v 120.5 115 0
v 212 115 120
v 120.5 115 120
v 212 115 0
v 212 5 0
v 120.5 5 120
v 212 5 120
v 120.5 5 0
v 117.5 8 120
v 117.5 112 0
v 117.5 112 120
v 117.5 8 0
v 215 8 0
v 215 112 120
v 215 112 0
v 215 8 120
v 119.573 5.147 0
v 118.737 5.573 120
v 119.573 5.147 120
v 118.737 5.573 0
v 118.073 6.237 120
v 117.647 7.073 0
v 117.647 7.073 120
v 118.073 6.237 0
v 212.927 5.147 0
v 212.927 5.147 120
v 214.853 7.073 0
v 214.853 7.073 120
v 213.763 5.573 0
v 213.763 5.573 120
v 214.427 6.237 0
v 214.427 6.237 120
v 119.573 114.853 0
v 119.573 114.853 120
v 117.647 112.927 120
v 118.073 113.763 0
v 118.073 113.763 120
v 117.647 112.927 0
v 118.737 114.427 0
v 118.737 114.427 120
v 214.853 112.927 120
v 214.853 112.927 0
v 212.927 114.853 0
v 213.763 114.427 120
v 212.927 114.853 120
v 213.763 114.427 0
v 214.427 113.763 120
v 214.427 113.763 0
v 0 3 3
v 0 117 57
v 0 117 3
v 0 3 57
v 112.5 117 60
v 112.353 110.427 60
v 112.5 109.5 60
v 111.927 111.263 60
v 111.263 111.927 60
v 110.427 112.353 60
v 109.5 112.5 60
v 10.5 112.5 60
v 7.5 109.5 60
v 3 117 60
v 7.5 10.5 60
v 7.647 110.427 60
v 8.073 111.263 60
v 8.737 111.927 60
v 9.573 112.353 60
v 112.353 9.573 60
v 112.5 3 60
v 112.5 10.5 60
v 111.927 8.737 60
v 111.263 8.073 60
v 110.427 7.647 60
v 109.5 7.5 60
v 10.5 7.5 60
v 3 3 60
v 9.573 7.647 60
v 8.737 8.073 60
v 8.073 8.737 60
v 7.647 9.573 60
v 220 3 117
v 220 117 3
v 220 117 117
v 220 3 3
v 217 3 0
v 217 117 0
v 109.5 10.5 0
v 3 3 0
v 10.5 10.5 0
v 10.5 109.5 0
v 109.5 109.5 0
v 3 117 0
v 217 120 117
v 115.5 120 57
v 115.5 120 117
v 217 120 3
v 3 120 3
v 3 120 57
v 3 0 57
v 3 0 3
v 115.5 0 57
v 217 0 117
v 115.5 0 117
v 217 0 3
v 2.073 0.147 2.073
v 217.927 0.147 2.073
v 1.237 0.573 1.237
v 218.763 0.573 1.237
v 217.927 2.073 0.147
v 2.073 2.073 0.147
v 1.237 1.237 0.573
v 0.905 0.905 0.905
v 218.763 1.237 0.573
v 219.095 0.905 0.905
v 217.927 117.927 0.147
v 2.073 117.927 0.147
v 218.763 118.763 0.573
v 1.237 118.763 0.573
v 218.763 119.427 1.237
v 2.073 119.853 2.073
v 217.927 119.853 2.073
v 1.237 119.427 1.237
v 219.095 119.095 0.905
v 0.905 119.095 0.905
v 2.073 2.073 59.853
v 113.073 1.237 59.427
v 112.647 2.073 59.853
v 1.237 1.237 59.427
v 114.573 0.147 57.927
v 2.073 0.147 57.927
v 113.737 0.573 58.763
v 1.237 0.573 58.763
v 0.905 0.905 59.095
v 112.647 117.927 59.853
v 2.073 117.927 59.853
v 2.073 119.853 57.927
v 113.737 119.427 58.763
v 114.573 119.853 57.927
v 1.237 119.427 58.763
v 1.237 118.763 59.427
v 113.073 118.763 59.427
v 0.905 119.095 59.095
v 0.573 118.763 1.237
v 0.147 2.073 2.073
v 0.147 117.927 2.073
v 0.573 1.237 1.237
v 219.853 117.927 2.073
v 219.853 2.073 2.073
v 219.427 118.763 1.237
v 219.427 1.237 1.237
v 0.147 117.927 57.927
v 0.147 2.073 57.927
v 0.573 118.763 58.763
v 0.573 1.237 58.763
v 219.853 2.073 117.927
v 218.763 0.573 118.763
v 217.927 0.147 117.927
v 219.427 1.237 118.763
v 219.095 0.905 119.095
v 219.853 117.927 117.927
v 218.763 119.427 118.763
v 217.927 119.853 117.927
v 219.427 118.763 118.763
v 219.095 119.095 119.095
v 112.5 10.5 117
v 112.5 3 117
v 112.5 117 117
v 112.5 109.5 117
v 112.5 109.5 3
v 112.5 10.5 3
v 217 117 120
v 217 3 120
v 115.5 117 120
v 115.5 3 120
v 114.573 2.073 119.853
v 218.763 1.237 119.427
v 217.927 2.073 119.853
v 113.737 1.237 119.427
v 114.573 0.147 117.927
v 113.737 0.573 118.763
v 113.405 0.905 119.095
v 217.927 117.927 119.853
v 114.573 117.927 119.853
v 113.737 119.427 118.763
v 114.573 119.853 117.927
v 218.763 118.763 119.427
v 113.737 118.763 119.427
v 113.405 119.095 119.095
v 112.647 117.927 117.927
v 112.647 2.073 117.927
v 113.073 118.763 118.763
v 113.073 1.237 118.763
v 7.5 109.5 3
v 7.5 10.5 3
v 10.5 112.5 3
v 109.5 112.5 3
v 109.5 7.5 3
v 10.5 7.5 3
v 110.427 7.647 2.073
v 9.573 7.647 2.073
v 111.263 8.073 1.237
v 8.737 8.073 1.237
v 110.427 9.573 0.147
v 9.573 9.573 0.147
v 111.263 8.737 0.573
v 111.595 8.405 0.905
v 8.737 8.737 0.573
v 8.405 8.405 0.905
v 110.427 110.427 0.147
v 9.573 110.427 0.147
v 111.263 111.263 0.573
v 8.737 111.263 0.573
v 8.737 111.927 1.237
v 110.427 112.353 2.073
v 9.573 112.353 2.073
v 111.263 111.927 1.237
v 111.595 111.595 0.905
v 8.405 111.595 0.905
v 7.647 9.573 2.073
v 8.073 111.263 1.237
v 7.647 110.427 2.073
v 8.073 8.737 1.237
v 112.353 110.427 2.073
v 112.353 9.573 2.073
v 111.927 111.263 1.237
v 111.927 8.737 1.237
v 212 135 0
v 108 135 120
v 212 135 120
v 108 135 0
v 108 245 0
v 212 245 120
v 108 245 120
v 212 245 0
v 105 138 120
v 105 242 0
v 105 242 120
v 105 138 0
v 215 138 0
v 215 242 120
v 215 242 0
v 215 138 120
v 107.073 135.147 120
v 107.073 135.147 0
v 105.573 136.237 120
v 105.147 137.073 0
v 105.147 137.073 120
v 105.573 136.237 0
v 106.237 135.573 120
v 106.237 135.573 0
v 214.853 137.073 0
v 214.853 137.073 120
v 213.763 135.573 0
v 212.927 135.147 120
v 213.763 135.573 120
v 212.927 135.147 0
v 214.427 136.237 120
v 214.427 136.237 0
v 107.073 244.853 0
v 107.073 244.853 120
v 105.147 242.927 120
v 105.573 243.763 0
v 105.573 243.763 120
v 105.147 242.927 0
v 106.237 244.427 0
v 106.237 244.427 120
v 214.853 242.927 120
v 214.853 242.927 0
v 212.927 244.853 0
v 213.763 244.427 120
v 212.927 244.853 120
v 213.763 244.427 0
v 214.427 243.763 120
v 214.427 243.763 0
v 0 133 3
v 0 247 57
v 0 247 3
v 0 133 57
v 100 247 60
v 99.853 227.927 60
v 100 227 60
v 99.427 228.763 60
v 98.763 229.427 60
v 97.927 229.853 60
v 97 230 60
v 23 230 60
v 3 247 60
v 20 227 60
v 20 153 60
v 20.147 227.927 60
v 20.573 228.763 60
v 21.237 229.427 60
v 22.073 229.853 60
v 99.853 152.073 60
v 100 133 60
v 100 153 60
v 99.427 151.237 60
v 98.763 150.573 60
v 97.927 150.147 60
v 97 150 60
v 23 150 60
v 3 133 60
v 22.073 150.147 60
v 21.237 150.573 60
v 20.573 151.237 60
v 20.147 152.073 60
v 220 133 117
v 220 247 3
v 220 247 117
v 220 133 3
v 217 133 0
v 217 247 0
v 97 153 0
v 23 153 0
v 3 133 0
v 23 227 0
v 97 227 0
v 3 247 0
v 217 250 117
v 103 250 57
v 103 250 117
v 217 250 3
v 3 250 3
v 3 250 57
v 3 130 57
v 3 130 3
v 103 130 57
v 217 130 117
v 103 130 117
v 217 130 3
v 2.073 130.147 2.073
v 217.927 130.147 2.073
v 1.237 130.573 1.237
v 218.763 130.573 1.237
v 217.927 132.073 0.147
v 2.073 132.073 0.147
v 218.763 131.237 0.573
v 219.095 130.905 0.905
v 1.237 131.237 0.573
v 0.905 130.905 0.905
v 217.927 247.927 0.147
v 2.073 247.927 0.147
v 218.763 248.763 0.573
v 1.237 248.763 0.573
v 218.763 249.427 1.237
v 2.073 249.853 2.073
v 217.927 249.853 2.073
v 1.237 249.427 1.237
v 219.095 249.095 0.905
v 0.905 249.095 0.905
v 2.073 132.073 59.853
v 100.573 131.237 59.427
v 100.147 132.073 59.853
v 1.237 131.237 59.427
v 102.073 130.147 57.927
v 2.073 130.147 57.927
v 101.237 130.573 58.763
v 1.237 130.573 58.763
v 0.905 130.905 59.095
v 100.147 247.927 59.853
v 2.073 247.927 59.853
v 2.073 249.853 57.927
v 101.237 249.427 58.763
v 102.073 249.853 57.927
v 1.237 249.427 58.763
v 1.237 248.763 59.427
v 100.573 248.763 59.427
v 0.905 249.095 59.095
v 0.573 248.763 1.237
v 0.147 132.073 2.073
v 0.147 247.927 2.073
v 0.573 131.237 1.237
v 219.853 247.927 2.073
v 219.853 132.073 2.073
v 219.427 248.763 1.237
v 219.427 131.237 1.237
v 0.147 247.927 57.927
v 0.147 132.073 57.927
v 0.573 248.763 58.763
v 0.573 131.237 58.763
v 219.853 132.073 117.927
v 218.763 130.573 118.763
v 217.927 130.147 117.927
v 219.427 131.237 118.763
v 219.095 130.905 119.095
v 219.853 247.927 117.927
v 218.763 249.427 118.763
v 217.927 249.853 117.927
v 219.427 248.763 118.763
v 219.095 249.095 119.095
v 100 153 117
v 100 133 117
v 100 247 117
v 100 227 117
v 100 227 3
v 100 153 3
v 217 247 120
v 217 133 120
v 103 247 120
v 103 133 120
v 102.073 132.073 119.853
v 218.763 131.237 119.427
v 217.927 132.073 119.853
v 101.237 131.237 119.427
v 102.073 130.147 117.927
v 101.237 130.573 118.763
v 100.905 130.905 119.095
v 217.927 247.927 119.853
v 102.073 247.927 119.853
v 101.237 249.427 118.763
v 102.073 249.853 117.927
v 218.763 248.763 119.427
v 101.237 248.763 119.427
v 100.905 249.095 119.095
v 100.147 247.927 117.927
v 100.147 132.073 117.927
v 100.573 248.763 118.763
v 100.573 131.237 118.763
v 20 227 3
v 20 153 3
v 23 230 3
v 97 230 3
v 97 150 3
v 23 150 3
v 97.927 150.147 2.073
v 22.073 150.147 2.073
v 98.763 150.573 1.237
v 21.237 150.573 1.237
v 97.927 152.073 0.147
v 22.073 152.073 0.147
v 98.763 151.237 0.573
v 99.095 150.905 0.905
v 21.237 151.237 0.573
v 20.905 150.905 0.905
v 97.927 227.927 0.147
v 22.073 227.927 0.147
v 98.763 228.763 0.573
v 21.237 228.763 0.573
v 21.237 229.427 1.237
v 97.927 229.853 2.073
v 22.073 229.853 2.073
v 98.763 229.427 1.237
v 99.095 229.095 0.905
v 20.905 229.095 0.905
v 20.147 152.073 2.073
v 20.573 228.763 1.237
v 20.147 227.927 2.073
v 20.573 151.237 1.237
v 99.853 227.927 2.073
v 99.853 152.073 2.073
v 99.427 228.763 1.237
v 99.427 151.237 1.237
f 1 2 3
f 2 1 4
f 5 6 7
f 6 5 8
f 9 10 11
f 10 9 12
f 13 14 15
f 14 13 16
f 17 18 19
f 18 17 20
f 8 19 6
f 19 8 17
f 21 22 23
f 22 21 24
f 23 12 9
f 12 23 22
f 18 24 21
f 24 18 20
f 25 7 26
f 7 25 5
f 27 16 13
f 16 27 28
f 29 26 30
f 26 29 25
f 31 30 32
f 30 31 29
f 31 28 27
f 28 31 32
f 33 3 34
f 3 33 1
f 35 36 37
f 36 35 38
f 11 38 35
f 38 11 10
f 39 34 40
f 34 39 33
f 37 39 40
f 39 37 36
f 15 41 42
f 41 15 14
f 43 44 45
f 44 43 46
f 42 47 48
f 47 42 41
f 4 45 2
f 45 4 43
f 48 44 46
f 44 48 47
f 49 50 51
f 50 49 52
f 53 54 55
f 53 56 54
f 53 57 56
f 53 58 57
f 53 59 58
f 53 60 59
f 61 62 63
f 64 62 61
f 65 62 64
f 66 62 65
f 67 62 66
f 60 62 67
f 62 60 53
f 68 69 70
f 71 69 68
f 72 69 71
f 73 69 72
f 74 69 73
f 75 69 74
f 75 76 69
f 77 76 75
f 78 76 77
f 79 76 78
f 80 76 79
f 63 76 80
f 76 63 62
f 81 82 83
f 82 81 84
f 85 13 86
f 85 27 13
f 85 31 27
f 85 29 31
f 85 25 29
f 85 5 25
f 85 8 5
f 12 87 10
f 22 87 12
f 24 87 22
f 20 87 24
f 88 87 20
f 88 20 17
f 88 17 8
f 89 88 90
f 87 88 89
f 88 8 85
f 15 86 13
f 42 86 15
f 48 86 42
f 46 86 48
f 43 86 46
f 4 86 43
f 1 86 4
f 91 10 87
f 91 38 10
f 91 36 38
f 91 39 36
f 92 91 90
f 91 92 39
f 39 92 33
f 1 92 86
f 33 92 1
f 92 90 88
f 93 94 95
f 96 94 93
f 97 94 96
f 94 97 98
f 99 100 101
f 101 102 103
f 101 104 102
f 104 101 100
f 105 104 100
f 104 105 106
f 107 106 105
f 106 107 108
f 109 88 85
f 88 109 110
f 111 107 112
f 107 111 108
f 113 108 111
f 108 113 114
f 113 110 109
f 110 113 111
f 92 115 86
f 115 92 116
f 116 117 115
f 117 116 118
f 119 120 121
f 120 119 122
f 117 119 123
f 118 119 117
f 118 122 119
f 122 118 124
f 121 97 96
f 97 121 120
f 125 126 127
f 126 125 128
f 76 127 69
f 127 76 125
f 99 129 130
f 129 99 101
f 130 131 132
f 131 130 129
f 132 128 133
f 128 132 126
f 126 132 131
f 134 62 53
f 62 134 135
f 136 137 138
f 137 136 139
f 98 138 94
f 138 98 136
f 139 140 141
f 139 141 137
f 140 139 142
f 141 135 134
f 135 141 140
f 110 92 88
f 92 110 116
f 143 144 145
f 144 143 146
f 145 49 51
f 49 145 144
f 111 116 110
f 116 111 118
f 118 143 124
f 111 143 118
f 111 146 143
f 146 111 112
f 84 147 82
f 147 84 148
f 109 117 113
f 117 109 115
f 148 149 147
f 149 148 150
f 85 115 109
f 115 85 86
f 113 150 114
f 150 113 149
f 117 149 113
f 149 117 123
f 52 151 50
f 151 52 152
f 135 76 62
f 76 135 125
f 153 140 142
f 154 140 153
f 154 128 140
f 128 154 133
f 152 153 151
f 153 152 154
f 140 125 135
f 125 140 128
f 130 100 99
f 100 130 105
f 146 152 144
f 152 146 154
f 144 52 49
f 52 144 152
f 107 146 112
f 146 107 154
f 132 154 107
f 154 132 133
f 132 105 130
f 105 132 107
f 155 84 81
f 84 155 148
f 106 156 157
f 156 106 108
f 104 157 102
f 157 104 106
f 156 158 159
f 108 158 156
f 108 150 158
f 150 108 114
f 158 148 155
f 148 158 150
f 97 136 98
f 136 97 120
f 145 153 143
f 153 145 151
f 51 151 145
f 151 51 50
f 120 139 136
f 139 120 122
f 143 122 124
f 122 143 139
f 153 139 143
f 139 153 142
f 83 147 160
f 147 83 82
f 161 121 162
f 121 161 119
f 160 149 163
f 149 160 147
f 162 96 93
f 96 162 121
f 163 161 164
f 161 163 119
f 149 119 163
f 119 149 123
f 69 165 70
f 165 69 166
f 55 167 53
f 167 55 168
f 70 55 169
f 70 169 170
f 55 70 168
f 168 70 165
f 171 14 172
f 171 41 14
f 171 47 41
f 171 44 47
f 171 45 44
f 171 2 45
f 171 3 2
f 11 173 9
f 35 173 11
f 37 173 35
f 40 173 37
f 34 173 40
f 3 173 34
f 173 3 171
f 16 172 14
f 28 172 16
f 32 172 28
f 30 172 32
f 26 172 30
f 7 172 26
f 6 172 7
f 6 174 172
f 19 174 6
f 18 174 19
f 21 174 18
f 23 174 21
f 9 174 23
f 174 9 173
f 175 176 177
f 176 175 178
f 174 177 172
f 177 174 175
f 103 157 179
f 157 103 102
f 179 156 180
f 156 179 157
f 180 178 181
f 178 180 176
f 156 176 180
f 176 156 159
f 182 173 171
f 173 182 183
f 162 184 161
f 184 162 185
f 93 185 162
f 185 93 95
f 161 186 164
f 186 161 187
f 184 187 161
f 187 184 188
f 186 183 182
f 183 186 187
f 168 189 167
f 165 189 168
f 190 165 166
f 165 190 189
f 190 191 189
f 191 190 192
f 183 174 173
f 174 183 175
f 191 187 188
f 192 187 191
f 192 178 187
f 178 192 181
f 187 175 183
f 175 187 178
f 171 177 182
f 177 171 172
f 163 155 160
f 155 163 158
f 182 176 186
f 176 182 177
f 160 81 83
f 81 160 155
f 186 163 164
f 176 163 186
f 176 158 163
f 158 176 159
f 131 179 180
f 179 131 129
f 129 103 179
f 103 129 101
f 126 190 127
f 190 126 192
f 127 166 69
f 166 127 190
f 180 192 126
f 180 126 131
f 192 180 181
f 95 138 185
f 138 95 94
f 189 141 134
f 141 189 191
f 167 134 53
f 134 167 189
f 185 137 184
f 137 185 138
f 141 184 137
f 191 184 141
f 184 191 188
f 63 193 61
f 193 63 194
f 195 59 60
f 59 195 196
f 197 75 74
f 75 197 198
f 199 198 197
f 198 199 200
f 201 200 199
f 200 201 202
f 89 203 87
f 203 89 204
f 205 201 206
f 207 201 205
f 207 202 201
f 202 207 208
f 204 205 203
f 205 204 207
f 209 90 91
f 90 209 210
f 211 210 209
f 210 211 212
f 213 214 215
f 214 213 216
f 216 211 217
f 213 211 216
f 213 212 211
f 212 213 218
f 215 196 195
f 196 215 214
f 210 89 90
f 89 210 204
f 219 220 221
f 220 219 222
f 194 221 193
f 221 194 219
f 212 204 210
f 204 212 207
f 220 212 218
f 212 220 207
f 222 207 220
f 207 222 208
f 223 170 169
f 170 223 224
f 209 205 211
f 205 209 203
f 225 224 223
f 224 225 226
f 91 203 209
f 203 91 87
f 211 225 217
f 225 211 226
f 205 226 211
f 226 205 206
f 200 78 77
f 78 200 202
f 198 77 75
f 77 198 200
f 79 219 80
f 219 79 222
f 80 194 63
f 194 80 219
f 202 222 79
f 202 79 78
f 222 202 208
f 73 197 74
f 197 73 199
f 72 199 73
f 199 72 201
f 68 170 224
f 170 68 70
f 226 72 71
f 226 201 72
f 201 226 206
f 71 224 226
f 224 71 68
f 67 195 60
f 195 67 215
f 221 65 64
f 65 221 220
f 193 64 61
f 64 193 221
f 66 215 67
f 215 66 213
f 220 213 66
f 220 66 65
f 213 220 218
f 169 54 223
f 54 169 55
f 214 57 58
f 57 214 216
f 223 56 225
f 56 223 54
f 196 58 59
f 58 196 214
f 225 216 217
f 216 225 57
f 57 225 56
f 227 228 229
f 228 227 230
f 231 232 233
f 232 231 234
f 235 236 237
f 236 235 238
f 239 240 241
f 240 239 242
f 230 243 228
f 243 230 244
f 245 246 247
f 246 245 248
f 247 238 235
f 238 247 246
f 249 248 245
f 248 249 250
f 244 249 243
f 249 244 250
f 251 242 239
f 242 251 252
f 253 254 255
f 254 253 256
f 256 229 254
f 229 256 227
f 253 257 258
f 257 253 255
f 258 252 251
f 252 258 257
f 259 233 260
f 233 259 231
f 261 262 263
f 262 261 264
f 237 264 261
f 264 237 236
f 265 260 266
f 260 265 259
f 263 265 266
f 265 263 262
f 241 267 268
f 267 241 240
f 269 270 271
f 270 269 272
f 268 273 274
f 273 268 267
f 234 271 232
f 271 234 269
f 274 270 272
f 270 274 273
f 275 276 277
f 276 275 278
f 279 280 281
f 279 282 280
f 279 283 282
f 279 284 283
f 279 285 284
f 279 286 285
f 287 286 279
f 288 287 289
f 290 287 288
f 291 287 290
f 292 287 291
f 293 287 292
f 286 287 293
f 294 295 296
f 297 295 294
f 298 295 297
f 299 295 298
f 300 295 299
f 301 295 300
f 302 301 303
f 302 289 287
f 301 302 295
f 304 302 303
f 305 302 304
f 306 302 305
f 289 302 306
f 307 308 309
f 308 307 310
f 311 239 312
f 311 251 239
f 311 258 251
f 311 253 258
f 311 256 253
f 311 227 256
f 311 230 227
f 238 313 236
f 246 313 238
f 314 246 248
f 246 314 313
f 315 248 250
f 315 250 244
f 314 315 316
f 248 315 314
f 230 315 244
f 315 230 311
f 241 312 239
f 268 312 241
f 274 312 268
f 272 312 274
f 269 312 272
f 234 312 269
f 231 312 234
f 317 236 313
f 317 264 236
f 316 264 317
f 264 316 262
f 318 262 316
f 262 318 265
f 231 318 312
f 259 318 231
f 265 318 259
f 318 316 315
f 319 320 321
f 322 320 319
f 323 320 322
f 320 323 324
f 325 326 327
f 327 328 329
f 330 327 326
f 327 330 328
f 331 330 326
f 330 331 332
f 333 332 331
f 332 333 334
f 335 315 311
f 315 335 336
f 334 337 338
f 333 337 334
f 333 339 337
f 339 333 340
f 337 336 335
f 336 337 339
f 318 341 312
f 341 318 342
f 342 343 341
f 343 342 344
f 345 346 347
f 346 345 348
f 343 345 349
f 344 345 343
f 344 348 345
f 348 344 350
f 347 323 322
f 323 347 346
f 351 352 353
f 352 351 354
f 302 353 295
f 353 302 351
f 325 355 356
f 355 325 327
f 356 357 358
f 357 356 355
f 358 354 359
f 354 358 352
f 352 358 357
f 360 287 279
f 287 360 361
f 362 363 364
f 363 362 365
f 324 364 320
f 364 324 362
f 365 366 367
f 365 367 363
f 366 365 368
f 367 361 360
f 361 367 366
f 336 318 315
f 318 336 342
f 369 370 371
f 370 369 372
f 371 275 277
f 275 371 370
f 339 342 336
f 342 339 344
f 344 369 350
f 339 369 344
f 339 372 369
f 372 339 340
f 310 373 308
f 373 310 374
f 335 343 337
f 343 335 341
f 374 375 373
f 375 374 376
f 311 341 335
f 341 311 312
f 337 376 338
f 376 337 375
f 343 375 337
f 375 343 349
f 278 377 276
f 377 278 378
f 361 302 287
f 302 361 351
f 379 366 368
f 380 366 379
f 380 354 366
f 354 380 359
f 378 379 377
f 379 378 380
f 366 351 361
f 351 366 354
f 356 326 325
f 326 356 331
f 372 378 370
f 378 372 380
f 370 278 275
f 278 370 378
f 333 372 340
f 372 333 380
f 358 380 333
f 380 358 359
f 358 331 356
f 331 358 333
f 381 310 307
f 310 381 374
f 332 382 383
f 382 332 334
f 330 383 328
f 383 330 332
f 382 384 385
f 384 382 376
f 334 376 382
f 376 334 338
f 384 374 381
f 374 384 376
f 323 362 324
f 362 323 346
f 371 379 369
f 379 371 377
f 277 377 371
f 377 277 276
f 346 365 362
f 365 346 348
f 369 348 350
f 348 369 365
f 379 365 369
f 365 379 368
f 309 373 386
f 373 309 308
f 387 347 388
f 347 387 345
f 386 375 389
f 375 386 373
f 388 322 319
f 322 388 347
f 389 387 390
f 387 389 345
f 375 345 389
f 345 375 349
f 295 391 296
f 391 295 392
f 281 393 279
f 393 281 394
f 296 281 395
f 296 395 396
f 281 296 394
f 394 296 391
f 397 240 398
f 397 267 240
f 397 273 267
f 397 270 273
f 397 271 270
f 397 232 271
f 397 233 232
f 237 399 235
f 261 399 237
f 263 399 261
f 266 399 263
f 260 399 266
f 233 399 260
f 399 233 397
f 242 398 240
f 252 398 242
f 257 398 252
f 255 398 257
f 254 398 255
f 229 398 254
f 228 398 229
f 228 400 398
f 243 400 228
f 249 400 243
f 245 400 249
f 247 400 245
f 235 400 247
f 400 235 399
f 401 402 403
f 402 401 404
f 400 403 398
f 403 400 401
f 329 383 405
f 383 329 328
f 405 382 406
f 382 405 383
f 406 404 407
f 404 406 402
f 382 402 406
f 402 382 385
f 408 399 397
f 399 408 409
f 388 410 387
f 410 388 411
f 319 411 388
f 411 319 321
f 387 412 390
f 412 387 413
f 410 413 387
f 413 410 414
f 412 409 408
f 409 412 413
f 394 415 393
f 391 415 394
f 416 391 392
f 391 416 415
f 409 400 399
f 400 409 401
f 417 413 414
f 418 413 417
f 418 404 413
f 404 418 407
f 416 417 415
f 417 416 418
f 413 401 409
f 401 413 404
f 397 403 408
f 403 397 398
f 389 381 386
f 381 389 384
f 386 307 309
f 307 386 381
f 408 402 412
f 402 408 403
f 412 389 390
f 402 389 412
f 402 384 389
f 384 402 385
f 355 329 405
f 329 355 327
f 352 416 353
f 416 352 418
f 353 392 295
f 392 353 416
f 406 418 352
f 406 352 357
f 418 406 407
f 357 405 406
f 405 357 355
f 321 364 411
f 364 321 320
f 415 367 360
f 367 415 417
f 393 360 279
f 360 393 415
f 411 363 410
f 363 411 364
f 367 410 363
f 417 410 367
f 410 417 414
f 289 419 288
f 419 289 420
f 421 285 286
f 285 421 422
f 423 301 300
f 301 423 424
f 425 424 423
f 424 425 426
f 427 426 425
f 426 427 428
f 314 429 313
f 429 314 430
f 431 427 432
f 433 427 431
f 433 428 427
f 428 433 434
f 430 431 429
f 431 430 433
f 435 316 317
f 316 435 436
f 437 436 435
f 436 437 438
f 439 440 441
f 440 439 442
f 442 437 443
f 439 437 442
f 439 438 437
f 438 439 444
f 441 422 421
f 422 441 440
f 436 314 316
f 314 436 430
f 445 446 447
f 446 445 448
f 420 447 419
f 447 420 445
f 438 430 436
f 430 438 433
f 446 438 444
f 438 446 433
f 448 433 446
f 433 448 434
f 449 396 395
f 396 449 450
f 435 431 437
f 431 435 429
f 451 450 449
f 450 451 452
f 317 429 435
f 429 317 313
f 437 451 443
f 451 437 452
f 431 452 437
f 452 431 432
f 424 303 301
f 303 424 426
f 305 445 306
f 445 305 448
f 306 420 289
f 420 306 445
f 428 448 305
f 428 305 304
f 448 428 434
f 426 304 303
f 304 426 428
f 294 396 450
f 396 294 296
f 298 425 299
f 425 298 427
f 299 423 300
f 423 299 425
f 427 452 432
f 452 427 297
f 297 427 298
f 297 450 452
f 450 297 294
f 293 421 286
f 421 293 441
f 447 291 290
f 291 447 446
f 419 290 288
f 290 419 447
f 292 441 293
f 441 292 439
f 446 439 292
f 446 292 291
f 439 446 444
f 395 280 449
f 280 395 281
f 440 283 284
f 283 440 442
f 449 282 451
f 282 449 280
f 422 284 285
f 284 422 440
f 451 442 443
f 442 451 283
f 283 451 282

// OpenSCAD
AvyskaNakPros = 60;
ARozdNakPros = 105;//100fotka//80dokumentace
AvyskaAuta = 120; //Nevym
AhloubkaNakPros = AvyskaNakPros; //Neni podstatne
AdelkaAuta = 220;
AsirkaAuta = 120;





module Auto(vyskaNakPros,RozdNakPros ,vyskaAuta ,hloubkaNakPros,delkaAuta , sirkaAuta)
{
    stenaNakPros = (sirkaAuta - RozdNakPros)/2;
    stenaMoje = 5;
    zaobleni = 3;//moje
    prestnost = 20;
    difference()
    {
        translate([0,0,0])
        {
            OvalnaKrichleCisla([delkaAuta,sirkaAuta,vyskaNakPros], zaobleni, zaobleni, zaobleni,prestnost);
            translate([RozdNakPros + stenaNakPros,0,0]) OvalnaKrichleCisla([delkaAuta - (RozdNakPros + stenaNakPros),sirkaAuta,vyskaAuta], zaobleni, zaobleni, zaobleni,prestnost);
        }
        translate([stenaNakPros,stenaNakPros,vyskaNakPros - hloubkaNakPros]) OvalnaKrichleCisla([RozdNakPros,RozdNakPros,vyskaAuta], zaobleni, zaobleni, zaobleni,prestnost);
        translate([stenaNakPros + RozdNakPros + stenaMoje,stenaMoje,-5]) OvalnaKrichleCisla([delkaAuta - stenaNakPros - RozdNakPros - stenaMoje*2,sirkaAuta - stenaMoje*2,vyskaAuta + 10], 0, 0, zaobleni,prestnost);
    }
    
}

translate([0,0,0]) Auto(AvyskaNakPros,105 ,AvyskaAuta ,AhloubkaNakPros,AdelkaAuta , AsirkaAuta);//v1
translate([0,AsirkaAuta + 10,0]) Auto(AvyskaNakPros,80 ,AvyskaAuta ,AhloubkaNakPros,AdelkaAuta , AsirkaAuta);//v2



//Kód pro vytvoření oválných kvádrů
module OvalnaKrichleX(Rozdmery, zakulaceni,st = 10)
{
	union() {
	translate([0,zakulaceni,0]) cube([Rozdmery[0],Rozdmery[1] - zakulaceni * 2,Rozdmery[2]],center=false);
	translate([0,0,zakulaceni]) cube([Rozdmery[0],Rozdmery[1],Rozdmery[2] - zakulaceni * 2],center=false);
	translate([0,zakulaceni,zakulaceni]) rotate([0,90,0]) cylinder( Rozdmery[0],   zakulaceni, zakulaceni,false,$fn=st);
	translate([0,Rozdmery[1] - zakulaceni,zakulaceni]) rotate([0,90,0]) cylinder( Rozdmery[0],   zakulaceni, zakulaceni,false,$fn=st);
	translate([0,zakulaceni,Rozdmery[2] - zakulaceni]) rotate([0,90,0]) cylinder( Rozdmery[0],   zakulaceni, zakulaceni,false,$fn=st);
	translate([0,Rozdmery[1] - zakulaceni,Rozdmery[2] - zakulaceni]) rotate([0,90,0]) cylinder( Rozdmery[0],   zakulaceni, zakulaceni,false,$fn=st);
	}
}


module OvalnaKrichleY(Rozdmery, zakulaceni,st = 10)
{
	union() {
	translate([zakulaceni,0,0]) cube([Rozdmery[0] - zakulaceni * 2,Rozdmery[1],Rozdmery[2]],center=false);
	translate([0,0,zakulaceni]) cube([Rozdmery[0],Rozdmery[1],Rozdmery[2] - zakulaceni * 2],center=false);
	translate([zakulaceni,0,zakulaceni]) rotate([270,0,0]) cylinder( Rozdmery[1],   zakulaceni, zakulaceni,false,$fn=st);
	translate([Rozdmery[0] - zakulaceni,0,zakulaceni]) rotate([270,0,0]) cylinder( Rozdmery[1],   zakulaceni, zakulaceni,false,$fn=st);
	translate([zakulaceni,0,Rozdmery[2] - zakulaceni]) rotate([270,0,0]) cylinder( Rozdmery[1],   zakulaceni, zakulaceni,false,$fn=st);
	translate([Rozdmery[0] - zakulaceni,0,Rozdmery[2] - zakulaceni]) rotate([270,0,0]) cylinder( Rozdmery[1],   zakulaceni, zakulaceni,false,$fn=st);
	}
}


module OvalnaKrichleZ(Rozdmery, zakulaceni,st = 10)
{
	union() {
	translate([zakulaceni,0,0]) cube([Rozdmery[0] - zakulaceni * 2,Rozdmery[1],Rozdmery[2]],center=false);
	translate([0,zakulaceni,0]) cube([Rozdmery[0],Rozdmery[1]  - zakulaceni * 2,Rozdmery[2]],center=false);
	translate([zakulaceni,zakulaceni,0]) rotate([0,0,0]) cylinder( Rozdmery[2],   zakulaceni, zakulaceni,false,$fn=st);
	translate([Rozdmery[0] - zakulaceni,zakulaceni,0]) rotate([0,0,0]) cylinder( Rozdmery[2],   zakulaceni, zakulaceni,false,$fn=st);
	translate([zakulaceni,Rozdmery[1] - zakulaceni,0]) rotate([0,0,0]) cylinder( Rozdmery[2],   zakulaceni, zakulaceni,false,$fn=st);
	translate([Rozdmery[0] - zakulaceni,Rozdmery[1] - zakulaceni,0]) rotate([0,0,0]) cylinder( Rozdmery[2],   zakulaceni, zakulaceni,false,$fn=st);
	}
}


module OvalnaKrichle(Rozdmery, zakulaceni, osaX, osaY, osaZ, st = 10)
{
	cont = false;
	intersection()
	{
		if(osaX == true)
		{
			OvalnaKrichleX(Rozdmery,zakulaceni,st);
			cont = true;
		}
		if(osaY == true)
		{
			OvalnaKrichleY(Rozdmery,zakulaceni,st);
			cont = true;
		}
		if(osaZ == true)
		{
			OvalnaKrichleZ(Rozdmery,zakulaceni,st);
			cont = true;
		}
		if(cont == false)
		{
			cube(Rozdmery,center=false);
		}
	}
}


module OvalnaKrichleCisla(Rozdmery, osaX, osaY, osaZ ,st = 10 )
{
	cont = false;
	intersection()
	{
		if(osaX != 0)
		{
			OvalnaKrichleX(Rozdmery,osaX,st);
			cont = true;
		}
		if(osaY != 0)
		{
			OvalnaKrichleY(Rozdmery,osaY,st);
			cont = true;
		}
		if(osaZ != 0)
		{
			OvalnaKrichleZ(Rozdmery,osaZ,st);
			cont = true;
		}
		if(cont == false)
		{
			cube(Rozdmery,center=false);
		}
	}
}
